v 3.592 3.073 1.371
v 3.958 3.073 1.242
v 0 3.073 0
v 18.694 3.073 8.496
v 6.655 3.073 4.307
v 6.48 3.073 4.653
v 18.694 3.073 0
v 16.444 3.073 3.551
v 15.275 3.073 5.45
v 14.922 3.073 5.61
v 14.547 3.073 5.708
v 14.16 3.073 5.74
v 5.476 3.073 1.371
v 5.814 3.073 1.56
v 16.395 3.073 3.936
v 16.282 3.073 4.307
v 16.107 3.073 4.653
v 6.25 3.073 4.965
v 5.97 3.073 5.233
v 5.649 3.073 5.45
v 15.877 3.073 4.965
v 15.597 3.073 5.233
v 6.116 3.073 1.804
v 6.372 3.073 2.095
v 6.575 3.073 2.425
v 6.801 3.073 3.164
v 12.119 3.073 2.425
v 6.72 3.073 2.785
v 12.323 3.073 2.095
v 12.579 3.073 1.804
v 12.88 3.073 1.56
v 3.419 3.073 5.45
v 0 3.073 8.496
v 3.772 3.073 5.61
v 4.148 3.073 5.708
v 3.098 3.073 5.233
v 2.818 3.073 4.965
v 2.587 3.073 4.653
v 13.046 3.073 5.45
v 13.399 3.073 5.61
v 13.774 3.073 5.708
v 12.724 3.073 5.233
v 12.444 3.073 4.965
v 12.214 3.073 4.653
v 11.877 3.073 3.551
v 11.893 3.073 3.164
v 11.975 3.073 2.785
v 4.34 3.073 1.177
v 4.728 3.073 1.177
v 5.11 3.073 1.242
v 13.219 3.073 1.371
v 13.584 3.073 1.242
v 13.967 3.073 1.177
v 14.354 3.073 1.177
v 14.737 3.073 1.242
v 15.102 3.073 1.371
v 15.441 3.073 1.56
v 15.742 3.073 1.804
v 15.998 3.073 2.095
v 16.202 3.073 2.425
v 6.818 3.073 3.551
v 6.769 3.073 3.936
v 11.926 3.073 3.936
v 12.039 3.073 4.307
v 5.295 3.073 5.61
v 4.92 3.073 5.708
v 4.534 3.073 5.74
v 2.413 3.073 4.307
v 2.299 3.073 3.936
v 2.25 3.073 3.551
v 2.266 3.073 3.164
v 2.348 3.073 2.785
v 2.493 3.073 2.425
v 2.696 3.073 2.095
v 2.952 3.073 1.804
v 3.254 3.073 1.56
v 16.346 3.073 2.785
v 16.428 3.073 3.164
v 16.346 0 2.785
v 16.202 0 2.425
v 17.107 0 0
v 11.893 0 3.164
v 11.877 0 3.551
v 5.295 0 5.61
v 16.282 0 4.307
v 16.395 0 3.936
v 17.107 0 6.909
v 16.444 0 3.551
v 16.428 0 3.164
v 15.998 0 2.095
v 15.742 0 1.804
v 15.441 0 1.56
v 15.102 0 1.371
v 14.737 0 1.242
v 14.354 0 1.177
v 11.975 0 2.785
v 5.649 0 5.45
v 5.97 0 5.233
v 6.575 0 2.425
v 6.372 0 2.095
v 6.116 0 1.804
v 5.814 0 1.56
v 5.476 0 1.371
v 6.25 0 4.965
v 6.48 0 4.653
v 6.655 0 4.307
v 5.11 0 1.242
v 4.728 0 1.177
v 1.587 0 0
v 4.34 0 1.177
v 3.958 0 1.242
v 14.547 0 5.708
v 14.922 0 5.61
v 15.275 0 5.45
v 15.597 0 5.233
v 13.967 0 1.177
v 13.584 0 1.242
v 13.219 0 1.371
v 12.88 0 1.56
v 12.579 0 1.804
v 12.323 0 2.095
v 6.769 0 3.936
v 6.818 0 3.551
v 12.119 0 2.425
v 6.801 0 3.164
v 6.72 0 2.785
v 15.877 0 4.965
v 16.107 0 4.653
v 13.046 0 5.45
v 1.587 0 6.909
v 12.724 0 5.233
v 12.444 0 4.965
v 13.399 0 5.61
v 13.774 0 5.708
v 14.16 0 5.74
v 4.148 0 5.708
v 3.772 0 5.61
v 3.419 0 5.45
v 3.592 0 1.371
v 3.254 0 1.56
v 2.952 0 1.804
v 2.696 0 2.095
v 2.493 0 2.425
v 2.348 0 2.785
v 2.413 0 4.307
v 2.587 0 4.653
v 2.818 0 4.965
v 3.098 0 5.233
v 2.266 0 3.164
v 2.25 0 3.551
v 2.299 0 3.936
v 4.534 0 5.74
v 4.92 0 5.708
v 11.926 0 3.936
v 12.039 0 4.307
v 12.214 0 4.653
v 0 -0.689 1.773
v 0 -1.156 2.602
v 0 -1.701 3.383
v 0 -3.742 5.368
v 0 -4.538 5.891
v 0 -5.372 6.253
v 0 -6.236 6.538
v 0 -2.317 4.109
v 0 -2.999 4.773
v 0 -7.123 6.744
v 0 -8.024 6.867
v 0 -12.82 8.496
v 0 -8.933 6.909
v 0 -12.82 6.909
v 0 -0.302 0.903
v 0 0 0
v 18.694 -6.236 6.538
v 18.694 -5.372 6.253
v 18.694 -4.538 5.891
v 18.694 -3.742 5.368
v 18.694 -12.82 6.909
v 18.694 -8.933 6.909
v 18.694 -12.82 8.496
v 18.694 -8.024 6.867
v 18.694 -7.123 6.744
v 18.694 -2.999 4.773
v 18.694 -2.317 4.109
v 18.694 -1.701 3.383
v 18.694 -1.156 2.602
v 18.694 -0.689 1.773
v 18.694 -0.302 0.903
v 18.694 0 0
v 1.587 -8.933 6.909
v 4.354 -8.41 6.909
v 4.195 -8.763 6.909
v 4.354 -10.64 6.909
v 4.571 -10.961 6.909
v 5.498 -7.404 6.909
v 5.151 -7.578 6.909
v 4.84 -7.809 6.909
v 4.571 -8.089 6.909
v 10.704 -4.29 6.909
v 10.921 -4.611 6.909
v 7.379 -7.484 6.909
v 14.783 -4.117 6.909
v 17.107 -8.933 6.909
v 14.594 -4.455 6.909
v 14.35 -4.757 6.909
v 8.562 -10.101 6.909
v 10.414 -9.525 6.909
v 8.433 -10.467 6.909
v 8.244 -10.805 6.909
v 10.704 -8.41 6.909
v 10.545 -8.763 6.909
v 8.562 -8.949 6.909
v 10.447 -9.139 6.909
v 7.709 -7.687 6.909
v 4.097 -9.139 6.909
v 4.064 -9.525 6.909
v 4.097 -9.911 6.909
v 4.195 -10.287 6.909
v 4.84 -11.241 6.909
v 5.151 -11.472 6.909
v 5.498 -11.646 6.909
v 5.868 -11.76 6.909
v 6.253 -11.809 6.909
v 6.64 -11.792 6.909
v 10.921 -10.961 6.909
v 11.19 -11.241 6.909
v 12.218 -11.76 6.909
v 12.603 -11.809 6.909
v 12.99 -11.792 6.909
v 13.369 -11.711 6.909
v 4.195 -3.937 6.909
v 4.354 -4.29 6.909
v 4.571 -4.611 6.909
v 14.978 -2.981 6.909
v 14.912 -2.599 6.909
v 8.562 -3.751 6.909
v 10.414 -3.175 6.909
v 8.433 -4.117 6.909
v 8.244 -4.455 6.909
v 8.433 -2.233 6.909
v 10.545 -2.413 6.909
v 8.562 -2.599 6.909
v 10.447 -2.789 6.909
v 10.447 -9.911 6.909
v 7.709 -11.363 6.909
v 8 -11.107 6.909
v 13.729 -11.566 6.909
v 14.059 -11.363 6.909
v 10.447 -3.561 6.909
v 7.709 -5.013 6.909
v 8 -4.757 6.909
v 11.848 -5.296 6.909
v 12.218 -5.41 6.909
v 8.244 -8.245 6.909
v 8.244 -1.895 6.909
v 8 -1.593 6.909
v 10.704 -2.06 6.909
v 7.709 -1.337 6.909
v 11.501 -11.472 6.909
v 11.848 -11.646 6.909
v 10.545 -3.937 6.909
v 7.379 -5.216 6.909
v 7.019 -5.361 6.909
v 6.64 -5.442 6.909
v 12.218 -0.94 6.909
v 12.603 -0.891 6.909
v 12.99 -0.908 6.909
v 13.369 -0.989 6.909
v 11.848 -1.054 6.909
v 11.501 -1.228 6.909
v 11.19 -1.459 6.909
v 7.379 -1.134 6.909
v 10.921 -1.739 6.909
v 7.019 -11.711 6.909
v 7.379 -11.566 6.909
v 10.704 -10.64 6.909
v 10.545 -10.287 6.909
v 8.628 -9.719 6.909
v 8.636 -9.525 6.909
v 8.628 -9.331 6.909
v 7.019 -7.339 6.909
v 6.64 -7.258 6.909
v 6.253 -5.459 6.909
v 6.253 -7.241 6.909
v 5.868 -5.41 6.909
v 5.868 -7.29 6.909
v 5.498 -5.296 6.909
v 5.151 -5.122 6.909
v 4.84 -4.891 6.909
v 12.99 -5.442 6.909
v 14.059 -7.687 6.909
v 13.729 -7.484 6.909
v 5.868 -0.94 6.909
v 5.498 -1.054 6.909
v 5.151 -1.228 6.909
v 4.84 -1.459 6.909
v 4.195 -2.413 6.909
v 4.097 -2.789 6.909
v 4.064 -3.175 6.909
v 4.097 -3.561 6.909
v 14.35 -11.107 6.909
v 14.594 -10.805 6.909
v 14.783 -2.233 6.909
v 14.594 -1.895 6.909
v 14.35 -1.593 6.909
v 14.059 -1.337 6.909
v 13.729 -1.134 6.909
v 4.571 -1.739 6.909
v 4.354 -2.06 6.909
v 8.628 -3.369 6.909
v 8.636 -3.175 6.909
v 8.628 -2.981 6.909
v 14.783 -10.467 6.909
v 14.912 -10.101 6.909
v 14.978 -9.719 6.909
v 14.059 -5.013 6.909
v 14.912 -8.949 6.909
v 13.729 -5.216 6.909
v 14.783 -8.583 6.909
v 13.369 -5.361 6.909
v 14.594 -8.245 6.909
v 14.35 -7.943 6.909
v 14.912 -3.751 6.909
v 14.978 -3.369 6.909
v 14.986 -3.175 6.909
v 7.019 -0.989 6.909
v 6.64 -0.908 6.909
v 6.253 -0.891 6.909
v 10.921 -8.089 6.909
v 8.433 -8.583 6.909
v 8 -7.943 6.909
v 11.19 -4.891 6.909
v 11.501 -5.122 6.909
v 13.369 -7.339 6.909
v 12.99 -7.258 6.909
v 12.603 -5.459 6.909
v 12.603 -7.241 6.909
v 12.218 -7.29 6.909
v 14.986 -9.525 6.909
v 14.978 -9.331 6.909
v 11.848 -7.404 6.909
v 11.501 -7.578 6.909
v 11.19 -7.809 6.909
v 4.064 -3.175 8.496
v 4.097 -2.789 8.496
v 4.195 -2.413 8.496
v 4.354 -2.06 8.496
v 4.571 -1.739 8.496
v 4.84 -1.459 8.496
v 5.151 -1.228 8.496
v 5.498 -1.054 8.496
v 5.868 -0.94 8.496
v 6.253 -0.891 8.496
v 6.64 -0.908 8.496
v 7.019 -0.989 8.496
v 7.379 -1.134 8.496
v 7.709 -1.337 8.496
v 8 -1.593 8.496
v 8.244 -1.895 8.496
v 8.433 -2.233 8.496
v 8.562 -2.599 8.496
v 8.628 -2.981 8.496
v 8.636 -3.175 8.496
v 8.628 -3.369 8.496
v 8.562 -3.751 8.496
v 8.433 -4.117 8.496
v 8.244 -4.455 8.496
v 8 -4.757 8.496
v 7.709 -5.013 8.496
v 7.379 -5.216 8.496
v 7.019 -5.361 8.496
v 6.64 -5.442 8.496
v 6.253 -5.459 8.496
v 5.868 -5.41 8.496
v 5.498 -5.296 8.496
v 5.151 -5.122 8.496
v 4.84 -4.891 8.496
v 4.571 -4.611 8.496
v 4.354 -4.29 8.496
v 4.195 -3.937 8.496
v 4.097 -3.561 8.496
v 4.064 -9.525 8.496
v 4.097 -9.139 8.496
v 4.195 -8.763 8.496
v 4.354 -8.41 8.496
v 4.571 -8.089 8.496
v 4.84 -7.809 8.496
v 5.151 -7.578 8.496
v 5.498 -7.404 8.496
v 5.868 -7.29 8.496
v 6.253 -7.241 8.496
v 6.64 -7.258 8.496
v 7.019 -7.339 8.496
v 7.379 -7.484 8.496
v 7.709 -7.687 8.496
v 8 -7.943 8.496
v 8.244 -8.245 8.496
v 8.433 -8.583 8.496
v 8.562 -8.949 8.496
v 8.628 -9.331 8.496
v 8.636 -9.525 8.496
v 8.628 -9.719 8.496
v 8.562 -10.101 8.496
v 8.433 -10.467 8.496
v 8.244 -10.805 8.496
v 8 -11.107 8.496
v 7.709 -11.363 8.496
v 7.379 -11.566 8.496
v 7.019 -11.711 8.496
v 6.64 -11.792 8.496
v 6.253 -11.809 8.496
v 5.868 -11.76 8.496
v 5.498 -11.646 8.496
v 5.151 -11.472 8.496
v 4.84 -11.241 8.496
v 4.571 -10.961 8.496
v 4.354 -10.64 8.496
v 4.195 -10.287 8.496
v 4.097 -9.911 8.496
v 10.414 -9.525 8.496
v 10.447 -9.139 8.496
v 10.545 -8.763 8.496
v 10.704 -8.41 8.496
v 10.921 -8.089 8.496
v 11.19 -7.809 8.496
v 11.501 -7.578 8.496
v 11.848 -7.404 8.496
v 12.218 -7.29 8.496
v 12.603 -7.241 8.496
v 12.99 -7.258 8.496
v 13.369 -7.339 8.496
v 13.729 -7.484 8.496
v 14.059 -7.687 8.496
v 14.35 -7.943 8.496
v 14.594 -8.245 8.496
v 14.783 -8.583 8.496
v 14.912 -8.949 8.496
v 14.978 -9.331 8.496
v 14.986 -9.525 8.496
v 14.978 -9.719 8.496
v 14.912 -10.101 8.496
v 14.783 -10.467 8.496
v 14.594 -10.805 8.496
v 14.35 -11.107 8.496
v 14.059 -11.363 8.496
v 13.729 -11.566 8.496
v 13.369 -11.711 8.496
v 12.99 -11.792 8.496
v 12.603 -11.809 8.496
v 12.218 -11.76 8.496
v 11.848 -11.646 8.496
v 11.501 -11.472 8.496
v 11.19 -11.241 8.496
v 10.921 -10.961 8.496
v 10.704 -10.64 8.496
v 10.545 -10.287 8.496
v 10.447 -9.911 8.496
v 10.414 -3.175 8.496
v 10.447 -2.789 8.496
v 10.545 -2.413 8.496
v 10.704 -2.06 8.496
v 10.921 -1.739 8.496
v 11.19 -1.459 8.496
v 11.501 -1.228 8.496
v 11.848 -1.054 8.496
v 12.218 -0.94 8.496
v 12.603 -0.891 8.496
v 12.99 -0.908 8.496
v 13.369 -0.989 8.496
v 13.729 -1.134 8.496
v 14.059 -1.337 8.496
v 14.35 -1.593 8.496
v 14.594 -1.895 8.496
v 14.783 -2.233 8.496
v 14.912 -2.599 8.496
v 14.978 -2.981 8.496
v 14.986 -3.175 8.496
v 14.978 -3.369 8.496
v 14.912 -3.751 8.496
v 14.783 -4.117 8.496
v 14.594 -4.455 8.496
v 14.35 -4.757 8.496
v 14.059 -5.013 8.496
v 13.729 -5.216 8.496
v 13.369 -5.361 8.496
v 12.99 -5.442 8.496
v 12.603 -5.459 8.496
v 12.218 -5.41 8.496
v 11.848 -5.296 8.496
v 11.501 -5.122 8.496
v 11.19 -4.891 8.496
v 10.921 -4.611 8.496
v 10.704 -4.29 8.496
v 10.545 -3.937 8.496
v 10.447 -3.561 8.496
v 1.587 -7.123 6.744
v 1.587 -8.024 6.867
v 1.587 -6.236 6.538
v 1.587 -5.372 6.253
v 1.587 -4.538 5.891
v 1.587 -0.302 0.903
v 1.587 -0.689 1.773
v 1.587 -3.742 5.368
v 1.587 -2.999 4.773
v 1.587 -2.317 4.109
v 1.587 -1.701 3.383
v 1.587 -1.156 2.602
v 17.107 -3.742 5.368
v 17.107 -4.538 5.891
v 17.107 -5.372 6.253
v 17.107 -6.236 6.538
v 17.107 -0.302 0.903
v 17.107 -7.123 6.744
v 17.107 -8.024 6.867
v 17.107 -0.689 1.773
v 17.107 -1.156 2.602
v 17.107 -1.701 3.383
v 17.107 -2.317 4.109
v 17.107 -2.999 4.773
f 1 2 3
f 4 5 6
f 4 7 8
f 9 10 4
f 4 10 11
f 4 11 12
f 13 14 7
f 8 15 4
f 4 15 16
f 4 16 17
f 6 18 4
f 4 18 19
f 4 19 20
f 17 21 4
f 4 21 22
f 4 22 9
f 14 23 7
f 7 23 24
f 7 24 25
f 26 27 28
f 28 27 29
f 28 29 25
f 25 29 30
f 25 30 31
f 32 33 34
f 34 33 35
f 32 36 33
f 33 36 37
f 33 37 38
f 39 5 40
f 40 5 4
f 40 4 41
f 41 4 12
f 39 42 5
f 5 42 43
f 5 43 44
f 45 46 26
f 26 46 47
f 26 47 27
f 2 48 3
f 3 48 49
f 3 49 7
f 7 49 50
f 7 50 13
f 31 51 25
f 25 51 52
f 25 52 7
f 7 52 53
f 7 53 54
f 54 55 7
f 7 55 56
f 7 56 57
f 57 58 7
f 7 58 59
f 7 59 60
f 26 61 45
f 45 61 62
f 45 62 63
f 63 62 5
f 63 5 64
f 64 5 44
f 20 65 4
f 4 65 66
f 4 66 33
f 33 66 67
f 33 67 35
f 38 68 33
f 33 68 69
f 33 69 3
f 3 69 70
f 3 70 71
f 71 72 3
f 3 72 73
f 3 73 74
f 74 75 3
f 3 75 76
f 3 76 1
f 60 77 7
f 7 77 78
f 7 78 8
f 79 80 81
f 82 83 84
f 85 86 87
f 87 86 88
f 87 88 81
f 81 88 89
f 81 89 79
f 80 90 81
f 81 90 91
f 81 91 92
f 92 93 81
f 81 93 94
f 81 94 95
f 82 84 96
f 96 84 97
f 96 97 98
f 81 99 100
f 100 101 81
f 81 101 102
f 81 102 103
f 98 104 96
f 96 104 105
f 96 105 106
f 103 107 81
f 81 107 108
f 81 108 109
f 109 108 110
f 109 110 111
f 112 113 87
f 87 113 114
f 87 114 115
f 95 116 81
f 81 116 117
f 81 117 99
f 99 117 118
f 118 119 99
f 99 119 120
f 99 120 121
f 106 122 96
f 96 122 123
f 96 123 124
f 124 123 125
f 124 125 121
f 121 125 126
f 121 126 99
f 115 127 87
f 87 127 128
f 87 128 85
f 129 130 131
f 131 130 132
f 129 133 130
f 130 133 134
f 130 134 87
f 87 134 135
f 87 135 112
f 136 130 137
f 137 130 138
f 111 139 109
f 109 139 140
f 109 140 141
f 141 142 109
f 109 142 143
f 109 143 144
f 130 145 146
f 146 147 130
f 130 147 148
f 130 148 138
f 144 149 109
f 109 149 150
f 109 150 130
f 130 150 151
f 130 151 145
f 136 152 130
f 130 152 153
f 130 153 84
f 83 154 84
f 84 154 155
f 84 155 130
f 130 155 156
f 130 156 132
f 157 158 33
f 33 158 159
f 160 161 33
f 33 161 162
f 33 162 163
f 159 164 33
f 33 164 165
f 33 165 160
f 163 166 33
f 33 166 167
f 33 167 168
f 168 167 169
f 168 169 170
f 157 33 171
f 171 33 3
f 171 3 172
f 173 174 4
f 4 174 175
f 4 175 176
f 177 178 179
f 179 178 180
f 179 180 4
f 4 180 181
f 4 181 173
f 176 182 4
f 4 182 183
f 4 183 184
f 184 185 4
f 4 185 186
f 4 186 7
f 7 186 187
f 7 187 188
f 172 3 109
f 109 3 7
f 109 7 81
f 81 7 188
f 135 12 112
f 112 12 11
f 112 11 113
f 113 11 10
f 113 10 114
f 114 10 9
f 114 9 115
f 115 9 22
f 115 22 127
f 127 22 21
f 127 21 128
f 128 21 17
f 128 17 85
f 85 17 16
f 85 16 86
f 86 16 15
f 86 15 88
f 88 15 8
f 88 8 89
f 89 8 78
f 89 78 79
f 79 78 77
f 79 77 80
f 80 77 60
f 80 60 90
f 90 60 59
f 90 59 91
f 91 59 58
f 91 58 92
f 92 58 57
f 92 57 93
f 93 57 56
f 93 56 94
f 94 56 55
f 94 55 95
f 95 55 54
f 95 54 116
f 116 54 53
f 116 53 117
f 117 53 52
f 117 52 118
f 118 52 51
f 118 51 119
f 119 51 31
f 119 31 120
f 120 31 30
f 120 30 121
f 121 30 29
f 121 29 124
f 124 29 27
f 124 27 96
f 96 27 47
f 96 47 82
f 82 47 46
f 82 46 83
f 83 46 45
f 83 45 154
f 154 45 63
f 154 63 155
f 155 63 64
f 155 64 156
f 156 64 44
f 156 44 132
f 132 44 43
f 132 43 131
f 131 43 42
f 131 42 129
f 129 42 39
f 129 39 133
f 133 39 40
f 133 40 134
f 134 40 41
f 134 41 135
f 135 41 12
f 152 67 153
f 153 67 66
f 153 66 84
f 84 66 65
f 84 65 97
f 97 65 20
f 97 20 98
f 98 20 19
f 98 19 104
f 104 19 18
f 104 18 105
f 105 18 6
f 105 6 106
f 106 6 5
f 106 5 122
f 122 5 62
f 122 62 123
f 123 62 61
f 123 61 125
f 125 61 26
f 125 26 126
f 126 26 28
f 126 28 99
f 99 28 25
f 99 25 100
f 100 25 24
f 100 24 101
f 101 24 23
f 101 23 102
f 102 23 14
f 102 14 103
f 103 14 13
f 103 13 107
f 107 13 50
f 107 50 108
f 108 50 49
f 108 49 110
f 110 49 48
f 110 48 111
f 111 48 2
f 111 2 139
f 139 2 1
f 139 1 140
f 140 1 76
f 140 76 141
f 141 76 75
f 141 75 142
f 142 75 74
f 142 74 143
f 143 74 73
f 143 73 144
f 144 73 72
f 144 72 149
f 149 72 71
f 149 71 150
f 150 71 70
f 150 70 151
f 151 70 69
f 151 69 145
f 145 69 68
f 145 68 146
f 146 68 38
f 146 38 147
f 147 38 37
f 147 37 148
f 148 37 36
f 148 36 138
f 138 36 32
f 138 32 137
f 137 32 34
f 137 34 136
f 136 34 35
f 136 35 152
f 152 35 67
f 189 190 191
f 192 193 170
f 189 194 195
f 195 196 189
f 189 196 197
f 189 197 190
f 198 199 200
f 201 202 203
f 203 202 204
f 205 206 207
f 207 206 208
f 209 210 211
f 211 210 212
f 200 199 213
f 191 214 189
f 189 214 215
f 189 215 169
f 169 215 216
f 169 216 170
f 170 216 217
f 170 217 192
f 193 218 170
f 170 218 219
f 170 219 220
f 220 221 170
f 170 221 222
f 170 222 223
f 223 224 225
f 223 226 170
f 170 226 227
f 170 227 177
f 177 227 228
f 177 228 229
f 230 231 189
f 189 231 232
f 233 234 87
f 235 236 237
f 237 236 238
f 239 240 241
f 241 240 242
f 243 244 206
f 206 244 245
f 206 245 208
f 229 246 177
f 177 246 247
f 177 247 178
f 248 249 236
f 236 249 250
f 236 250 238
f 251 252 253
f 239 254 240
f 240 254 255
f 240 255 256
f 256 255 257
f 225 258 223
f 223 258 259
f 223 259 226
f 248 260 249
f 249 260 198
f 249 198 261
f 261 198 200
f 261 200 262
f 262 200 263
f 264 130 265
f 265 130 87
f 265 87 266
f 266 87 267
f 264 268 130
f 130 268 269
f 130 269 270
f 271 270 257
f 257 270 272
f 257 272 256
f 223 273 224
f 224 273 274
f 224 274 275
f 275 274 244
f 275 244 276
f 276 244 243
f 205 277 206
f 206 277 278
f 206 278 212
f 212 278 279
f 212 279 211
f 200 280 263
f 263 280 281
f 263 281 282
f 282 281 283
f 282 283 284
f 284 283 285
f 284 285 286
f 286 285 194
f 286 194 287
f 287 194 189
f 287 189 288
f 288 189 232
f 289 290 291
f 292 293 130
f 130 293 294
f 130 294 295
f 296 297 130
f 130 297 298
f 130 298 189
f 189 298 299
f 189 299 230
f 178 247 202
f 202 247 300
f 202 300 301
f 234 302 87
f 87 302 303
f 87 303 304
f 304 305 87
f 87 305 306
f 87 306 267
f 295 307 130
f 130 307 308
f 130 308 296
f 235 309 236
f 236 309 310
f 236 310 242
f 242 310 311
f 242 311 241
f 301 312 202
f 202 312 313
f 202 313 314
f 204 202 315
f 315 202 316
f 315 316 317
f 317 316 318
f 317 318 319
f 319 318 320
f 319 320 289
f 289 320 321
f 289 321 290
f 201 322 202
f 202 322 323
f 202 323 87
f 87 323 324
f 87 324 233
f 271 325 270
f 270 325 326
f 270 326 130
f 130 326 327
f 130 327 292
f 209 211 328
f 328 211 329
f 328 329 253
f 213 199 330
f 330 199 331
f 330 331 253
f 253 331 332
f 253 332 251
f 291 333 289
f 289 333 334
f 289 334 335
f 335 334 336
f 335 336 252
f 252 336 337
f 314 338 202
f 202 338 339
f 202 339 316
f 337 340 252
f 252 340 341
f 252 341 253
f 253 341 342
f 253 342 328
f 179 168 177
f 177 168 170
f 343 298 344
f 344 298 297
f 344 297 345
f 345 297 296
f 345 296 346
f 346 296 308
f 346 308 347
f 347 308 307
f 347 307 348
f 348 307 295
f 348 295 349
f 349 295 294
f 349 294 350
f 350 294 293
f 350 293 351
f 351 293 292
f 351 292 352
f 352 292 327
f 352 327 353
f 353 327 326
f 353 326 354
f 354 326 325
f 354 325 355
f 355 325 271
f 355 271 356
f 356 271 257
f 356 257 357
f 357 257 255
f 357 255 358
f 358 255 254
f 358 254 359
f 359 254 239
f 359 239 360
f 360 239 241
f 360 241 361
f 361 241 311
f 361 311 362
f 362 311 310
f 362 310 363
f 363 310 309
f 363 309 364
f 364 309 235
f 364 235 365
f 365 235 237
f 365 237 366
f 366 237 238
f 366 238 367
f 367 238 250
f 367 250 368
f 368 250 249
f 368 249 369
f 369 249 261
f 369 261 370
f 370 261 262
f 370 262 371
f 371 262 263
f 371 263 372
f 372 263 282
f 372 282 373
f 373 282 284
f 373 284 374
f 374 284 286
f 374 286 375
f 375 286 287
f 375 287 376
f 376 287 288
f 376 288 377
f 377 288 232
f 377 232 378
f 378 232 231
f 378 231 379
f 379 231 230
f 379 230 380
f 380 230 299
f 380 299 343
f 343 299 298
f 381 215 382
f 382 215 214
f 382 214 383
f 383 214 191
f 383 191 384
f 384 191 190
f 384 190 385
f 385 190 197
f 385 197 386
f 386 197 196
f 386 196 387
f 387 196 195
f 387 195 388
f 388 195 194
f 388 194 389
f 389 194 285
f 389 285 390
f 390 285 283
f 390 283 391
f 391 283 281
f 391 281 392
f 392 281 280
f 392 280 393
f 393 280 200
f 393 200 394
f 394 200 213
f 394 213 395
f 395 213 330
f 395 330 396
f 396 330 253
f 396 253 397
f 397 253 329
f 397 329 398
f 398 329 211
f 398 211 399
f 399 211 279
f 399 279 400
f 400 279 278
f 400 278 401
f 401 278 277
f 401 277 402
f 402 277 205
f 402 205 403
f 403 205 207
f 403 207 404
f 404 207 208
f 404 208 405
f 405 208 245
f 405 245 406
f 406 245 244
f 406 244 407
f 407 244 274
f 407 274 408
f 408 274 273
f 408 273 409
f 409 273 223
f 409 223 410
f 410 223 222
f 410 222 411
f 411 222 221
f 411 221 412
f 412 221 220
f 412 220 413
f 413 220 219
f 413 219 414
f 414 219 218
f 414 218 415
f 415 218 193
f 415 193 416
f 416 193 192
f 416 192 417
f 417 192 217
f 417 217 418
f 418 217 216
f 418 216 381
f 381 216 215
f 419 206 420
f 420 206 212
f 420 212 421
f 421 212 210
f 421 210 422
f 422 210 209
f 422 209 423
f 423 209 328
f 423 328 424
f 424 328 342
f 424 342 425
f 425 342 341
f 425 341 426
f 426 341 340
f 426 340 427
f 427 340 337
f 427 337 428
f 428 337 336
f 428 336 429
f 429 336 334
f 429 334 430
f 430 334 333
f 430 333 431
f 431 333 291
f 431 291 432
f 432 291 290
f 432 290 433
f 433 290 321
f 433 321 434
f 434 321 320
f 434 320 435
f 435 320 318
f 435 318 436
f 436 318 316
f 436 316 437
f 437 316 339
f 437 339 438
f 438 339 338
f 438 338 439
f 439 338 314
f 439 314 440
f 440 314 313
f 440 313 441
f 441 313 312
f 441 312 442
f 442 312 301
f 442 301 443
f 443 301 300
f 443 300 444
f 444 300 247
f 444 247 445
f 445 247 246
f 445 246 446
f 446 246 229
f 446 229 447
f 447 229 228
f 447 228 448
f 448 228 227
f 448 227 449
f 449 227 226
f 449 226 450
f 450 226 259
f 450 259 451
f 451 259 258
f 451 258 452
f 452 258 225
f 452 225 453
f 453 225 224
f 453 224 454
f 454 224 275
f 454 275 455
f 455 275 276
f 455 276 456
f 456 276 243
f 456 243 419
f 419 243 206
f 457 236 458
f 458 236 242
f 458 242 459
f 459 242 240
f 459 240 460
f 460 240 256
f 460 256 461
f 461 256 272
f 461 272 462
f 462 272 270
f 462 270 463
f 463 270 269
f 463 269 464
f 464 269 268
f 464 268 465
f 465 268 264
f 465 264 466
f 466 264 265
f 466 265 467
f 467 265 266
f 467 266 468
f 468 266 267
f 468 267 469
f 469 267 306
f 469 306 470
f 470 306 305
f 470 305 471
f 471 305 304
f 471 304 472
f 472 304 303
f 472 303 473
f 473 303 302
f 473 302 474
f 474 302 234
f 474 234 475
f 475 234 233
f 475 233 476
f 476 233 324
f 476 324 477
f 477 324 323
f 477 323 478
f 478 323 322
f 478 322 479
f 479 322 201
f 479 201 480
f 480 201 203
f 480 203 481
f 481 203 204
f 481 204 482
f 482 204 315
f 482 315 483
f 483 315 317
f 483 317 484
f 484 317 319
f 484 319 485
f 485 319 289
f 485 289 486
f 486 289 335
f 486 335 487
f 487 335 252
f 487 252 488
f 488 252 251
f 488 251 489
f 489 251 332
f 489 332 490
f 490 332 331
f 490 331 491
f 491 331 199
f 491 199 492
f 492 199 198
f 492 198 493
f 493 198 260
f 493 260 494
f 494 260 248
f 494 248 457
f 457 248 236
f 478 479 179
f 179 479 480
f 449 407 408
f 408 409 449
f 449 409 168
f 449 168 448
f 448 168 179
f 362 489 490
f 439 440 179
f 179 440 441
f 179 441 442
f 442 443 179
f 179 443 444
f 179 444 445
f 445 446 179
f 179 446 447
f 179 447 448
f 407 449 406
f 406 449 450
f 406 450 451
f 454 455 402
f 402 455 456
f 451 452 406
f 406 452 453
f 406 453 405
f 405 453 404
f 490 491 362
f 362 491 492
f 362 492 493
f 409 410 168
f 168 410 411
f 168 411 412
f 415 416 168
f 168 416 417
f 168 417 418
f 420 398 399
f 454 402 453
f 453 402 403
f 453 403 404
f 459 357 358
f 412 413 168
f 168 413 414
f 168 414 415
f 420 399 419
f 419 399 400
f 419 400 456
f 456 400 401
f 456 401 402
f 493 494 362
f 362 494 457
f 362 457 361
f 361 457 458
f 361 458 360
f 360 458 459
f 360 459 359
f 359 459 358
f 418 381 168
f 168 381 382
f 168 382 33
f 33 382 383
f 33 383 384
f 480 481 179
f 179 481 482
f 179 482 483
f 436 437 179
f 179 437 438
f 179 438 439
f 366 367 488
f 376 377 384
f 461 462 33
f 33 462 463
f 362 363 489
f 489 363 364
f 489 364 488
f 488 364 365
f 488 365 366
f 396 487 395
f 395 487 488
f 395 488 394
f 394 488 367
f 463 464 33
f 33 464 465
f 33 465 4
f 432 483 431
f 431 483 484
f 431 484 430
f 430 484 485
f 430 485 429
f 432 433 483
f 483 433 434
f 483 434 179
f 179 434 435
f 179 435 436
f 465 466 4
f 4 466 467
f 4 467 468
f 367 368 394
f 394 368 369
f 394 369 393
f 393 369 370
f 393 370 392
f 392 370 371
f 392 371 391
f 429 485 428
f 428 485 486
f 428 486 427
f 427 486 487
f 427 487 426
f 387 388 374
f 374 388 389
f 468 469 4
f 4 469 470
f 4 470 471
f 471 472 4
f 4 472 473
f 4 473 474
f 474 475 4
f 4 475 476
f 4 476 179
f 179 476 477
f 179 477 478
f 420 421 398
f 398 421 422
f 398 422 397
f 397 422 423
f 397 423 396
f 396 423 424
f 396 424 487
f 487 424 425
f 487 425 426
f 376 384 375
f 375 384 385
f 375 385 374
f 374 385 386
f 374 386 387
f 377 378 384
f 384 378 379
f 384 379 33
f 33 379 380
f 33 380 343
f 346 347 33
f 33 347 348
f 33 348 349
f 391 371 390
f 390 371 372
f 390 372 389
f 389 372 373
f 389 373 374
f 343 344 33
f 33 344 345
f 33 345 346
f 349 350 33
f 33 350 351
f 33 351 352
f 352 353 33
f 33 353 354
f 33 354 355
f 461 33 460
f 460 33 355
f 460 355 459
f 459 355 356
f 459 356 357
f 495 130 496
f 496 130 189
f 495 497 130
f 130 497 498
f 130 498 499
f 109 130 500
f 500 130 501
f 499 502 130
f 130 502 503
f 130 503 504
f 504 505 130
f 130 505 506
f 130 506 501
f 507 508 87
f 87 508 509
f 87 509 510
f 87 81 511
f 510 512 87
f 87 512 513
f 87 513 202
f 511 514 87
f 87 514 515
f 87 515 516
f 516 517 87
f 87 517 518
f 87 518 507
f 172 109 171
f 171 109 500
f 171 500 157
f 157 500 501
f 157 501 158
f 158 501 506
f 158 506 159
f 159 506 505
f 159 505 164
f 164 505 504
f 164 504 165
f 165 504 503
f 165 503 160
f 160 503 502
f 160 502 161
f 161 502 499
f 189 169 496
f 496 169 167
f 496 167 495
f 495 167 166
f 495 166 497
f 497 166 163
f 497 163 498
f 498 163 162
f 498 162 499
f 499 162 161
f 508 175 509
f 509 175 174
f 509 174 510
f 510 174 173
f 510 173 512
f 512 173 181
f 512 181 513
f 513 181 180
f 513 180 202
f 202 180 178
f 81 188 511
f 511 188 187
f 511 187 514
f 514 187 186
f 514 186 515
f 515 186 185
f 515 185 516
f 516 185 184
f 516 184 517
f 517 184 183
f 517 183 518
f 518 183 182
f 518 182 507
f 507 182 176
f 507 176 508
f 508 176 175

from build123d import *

# Parameters (mm, degrees)
SKETCH1_W           = 18.6944
SKETCH1_H           = 6.9088
BOSS_EXTRUDE1_DEPTH = 3.0734
SKETCH2_R           = 2.286
CUT_EXTRUDE1_DEPTH  = 3.0734
SKETCH3_W           = 18.6944
SKETCH3_H           = 15.893108249
SKETCH3_R           = 2.286
BOSS_EXTRUDE3_DEPTH = 1.5875
BOSS_EXTRUDE4_DEPTH = 1.5875
BOSS_EXTRUDE5_DEPTH = 1.5875
FILLET1_R           = 10


with BuildPart() as part:
    # Sketch1 → Boss-Extrude1 (new body)
    with BuildSketch(Plane(origin=(0, 0, 0), x_dir=(1, 0, 0), z_dir=(0, 1, 0))):
        with Locations((9.3472, -3.4544)):
            Rectangle(SKETCH1_W, SKETCH1_H)
    extrude(amount=BOSS_EXTRUDE1_DEPTH)

    # Sketch2 → Cut-Extrude1 (cut)
    with BuildSketch(Plane(origin=(0, 3.0734, 0), x_dir=(1, 0, 0), z_dir=(0, 1, 0))):
        with Locations(Location((4.5339, -3.4544, 0), (0, 0, 270))):
            Circle(SKETCH2_R)
        with Locations(Location((14.1605, -3.4544, 0), (0, 0, 270))):
            Circle(SKETCH2_R)
    extrude(amount=-CUT_EXTRUDE1_DEPTH, mode=Mode.SUBTRACT)

    # Sketch3 → Boss-Extrude3 (add)
    with BuildSketch(Plane.XY.offset(6.9088)):
        with Locations((9.3472, -4.873154125)):
            Rectangle(SKETCH3_W, SKETCH3_H)
        with Locations((12.7, -9.525)):
            Circle(SKETCH3_R, mode=Mode.SUBTRACT)
        with Locations((6.35, -9.525)):
            Circle(SKETCH3_R, mode=Mode.SUBTRACT)
        with Locations((12.7, -3.175)):
            Circle(SKETCH3_R, mode=Mode.SUBTRACT)
        with Locations((6.35, -3.175)):
            Circle(SKETCH3_R, mode=Mode.SUBTRACT)
    extrude(amount=BOSS_EXTRUDE3_DEPTH)

    # Sketch4 → Boss-Extrude4 (add)
    with BuildSketch(Plane.ZY):
        Polygon((3.4544, 0), (6.9088, -6.409854124), (6.9088, 0), align=None)
    extrude(amount=-BOSS_EXTRUDE4_DEPTH)

    # Sketch5 → Boss-Extrude5 (add)
    with BuildSketch(Plane(origin=(18.6944, 0, 0), x_dir=(0, 0, -1), z_dir=(1, 0, 0))):
        Polygon((-3.4544, 0), (-6.9088, -6.409854124), (-6.9088, 0), align=None)
    extrude(amount=-BOSS_EXTRUDE5_DEPTH)

    # Fillet1
    # the kernel refuses this fillet: 10 mm, written as the material it adds along each edge
    with BuildSketch(Plane(origin=(0, -6.409854124, 6.9088), x_dir=(0, 0.8803024942448967, -0.4744128145678757), z_dir=(1, 0, 0)), Plane(origin=(18.6944, -6.409854124, 6.9088), x_dir=(0, -1, 0), z_dir=(-1, 0, 0))) as fillet1_piece_1:
        with BuildLine():
            CenterArc((FILLET1_R * 0.252306645351, -FILLET1_R), FILLET1_R, 90, 28.321125328)
            Line((-FILLET1_R * 0.222106169217, -FILLET1_R * 0.119697505755), (-FILLET1_R * 0.231594425508, -FILLET1_R * 0.10209145587))
            Line((-FILLET1_R * 0.231594425508, -FILLET1_R * 0.10209145587), (-FILLET1_R * 0.00504613290702, FILLET1_R * 0.02))
            Line((-FILLET1_R * 0.00504613290702, FILLET1_R * 0.02), (FILLET1_R * 0.252306645351, FILLET1_R * 0.02))
            Line((FILLET1_R * 0.252306645351, FILLET1_R * 0.02), (FILLET1_R * 0.252306645351, 0))
        make_face()
    extrude(amount=1.5875)
    with BuildSketch(Plane(origin=(0, 0, 3.4544), x_dir=(0, 0, -1), z_dir=(1, 0, 0))) as fillet1_piece_2:
        with BuildLine():
            CenterArc((6.173594354, -9.623200199), FILLET1_R, 105.778516421, 45.90035825)
            Line((-2.629430588, -4.879072053), (-2.805491087, -4.78418949))
            Line((-2.805491087, -4.78418949), (-0.176060499, 0.094882563))
            Line((-0.176060499, 0.094882563), (0, 0.2))
            ThreePointArc((0, 0.2), (1.7272, 0.2), (3.400016113, 0.192464004))
            Line((3.400016113, 0.192464004), (3.4544, 0))
        make_face()
    extrude(amount=1.5875)
    with BuildSketch(Plane(origin=(18.6944, 0, 3.4544), x_dir=(0, 0, -1), z_dir=(-1, 0, 0))) as fillet1_piece_3:
        with BuildLine():
            CenterArc((6.173594354, 9.623200199), FILLET1_R, 208.321125328, 45.90035825)
            Line((-2.629430588, 4.879072053), (-2.805491087, 4.78418949))
            Line((-2.805491087, 4.78418949), (-0.176060499, -0.094882563))
            Line((-0.176060499, -0.094882563), (0, -0.2))
            ThreePointArc((0, -0.2), (1.7272, -0.2), (3.400016113, -0.192464004))
            Line((3.400016113, -0.192464004), (3.4544, 0))
        make_face()
    extrude(amount=1.5875)


solid = part.part
